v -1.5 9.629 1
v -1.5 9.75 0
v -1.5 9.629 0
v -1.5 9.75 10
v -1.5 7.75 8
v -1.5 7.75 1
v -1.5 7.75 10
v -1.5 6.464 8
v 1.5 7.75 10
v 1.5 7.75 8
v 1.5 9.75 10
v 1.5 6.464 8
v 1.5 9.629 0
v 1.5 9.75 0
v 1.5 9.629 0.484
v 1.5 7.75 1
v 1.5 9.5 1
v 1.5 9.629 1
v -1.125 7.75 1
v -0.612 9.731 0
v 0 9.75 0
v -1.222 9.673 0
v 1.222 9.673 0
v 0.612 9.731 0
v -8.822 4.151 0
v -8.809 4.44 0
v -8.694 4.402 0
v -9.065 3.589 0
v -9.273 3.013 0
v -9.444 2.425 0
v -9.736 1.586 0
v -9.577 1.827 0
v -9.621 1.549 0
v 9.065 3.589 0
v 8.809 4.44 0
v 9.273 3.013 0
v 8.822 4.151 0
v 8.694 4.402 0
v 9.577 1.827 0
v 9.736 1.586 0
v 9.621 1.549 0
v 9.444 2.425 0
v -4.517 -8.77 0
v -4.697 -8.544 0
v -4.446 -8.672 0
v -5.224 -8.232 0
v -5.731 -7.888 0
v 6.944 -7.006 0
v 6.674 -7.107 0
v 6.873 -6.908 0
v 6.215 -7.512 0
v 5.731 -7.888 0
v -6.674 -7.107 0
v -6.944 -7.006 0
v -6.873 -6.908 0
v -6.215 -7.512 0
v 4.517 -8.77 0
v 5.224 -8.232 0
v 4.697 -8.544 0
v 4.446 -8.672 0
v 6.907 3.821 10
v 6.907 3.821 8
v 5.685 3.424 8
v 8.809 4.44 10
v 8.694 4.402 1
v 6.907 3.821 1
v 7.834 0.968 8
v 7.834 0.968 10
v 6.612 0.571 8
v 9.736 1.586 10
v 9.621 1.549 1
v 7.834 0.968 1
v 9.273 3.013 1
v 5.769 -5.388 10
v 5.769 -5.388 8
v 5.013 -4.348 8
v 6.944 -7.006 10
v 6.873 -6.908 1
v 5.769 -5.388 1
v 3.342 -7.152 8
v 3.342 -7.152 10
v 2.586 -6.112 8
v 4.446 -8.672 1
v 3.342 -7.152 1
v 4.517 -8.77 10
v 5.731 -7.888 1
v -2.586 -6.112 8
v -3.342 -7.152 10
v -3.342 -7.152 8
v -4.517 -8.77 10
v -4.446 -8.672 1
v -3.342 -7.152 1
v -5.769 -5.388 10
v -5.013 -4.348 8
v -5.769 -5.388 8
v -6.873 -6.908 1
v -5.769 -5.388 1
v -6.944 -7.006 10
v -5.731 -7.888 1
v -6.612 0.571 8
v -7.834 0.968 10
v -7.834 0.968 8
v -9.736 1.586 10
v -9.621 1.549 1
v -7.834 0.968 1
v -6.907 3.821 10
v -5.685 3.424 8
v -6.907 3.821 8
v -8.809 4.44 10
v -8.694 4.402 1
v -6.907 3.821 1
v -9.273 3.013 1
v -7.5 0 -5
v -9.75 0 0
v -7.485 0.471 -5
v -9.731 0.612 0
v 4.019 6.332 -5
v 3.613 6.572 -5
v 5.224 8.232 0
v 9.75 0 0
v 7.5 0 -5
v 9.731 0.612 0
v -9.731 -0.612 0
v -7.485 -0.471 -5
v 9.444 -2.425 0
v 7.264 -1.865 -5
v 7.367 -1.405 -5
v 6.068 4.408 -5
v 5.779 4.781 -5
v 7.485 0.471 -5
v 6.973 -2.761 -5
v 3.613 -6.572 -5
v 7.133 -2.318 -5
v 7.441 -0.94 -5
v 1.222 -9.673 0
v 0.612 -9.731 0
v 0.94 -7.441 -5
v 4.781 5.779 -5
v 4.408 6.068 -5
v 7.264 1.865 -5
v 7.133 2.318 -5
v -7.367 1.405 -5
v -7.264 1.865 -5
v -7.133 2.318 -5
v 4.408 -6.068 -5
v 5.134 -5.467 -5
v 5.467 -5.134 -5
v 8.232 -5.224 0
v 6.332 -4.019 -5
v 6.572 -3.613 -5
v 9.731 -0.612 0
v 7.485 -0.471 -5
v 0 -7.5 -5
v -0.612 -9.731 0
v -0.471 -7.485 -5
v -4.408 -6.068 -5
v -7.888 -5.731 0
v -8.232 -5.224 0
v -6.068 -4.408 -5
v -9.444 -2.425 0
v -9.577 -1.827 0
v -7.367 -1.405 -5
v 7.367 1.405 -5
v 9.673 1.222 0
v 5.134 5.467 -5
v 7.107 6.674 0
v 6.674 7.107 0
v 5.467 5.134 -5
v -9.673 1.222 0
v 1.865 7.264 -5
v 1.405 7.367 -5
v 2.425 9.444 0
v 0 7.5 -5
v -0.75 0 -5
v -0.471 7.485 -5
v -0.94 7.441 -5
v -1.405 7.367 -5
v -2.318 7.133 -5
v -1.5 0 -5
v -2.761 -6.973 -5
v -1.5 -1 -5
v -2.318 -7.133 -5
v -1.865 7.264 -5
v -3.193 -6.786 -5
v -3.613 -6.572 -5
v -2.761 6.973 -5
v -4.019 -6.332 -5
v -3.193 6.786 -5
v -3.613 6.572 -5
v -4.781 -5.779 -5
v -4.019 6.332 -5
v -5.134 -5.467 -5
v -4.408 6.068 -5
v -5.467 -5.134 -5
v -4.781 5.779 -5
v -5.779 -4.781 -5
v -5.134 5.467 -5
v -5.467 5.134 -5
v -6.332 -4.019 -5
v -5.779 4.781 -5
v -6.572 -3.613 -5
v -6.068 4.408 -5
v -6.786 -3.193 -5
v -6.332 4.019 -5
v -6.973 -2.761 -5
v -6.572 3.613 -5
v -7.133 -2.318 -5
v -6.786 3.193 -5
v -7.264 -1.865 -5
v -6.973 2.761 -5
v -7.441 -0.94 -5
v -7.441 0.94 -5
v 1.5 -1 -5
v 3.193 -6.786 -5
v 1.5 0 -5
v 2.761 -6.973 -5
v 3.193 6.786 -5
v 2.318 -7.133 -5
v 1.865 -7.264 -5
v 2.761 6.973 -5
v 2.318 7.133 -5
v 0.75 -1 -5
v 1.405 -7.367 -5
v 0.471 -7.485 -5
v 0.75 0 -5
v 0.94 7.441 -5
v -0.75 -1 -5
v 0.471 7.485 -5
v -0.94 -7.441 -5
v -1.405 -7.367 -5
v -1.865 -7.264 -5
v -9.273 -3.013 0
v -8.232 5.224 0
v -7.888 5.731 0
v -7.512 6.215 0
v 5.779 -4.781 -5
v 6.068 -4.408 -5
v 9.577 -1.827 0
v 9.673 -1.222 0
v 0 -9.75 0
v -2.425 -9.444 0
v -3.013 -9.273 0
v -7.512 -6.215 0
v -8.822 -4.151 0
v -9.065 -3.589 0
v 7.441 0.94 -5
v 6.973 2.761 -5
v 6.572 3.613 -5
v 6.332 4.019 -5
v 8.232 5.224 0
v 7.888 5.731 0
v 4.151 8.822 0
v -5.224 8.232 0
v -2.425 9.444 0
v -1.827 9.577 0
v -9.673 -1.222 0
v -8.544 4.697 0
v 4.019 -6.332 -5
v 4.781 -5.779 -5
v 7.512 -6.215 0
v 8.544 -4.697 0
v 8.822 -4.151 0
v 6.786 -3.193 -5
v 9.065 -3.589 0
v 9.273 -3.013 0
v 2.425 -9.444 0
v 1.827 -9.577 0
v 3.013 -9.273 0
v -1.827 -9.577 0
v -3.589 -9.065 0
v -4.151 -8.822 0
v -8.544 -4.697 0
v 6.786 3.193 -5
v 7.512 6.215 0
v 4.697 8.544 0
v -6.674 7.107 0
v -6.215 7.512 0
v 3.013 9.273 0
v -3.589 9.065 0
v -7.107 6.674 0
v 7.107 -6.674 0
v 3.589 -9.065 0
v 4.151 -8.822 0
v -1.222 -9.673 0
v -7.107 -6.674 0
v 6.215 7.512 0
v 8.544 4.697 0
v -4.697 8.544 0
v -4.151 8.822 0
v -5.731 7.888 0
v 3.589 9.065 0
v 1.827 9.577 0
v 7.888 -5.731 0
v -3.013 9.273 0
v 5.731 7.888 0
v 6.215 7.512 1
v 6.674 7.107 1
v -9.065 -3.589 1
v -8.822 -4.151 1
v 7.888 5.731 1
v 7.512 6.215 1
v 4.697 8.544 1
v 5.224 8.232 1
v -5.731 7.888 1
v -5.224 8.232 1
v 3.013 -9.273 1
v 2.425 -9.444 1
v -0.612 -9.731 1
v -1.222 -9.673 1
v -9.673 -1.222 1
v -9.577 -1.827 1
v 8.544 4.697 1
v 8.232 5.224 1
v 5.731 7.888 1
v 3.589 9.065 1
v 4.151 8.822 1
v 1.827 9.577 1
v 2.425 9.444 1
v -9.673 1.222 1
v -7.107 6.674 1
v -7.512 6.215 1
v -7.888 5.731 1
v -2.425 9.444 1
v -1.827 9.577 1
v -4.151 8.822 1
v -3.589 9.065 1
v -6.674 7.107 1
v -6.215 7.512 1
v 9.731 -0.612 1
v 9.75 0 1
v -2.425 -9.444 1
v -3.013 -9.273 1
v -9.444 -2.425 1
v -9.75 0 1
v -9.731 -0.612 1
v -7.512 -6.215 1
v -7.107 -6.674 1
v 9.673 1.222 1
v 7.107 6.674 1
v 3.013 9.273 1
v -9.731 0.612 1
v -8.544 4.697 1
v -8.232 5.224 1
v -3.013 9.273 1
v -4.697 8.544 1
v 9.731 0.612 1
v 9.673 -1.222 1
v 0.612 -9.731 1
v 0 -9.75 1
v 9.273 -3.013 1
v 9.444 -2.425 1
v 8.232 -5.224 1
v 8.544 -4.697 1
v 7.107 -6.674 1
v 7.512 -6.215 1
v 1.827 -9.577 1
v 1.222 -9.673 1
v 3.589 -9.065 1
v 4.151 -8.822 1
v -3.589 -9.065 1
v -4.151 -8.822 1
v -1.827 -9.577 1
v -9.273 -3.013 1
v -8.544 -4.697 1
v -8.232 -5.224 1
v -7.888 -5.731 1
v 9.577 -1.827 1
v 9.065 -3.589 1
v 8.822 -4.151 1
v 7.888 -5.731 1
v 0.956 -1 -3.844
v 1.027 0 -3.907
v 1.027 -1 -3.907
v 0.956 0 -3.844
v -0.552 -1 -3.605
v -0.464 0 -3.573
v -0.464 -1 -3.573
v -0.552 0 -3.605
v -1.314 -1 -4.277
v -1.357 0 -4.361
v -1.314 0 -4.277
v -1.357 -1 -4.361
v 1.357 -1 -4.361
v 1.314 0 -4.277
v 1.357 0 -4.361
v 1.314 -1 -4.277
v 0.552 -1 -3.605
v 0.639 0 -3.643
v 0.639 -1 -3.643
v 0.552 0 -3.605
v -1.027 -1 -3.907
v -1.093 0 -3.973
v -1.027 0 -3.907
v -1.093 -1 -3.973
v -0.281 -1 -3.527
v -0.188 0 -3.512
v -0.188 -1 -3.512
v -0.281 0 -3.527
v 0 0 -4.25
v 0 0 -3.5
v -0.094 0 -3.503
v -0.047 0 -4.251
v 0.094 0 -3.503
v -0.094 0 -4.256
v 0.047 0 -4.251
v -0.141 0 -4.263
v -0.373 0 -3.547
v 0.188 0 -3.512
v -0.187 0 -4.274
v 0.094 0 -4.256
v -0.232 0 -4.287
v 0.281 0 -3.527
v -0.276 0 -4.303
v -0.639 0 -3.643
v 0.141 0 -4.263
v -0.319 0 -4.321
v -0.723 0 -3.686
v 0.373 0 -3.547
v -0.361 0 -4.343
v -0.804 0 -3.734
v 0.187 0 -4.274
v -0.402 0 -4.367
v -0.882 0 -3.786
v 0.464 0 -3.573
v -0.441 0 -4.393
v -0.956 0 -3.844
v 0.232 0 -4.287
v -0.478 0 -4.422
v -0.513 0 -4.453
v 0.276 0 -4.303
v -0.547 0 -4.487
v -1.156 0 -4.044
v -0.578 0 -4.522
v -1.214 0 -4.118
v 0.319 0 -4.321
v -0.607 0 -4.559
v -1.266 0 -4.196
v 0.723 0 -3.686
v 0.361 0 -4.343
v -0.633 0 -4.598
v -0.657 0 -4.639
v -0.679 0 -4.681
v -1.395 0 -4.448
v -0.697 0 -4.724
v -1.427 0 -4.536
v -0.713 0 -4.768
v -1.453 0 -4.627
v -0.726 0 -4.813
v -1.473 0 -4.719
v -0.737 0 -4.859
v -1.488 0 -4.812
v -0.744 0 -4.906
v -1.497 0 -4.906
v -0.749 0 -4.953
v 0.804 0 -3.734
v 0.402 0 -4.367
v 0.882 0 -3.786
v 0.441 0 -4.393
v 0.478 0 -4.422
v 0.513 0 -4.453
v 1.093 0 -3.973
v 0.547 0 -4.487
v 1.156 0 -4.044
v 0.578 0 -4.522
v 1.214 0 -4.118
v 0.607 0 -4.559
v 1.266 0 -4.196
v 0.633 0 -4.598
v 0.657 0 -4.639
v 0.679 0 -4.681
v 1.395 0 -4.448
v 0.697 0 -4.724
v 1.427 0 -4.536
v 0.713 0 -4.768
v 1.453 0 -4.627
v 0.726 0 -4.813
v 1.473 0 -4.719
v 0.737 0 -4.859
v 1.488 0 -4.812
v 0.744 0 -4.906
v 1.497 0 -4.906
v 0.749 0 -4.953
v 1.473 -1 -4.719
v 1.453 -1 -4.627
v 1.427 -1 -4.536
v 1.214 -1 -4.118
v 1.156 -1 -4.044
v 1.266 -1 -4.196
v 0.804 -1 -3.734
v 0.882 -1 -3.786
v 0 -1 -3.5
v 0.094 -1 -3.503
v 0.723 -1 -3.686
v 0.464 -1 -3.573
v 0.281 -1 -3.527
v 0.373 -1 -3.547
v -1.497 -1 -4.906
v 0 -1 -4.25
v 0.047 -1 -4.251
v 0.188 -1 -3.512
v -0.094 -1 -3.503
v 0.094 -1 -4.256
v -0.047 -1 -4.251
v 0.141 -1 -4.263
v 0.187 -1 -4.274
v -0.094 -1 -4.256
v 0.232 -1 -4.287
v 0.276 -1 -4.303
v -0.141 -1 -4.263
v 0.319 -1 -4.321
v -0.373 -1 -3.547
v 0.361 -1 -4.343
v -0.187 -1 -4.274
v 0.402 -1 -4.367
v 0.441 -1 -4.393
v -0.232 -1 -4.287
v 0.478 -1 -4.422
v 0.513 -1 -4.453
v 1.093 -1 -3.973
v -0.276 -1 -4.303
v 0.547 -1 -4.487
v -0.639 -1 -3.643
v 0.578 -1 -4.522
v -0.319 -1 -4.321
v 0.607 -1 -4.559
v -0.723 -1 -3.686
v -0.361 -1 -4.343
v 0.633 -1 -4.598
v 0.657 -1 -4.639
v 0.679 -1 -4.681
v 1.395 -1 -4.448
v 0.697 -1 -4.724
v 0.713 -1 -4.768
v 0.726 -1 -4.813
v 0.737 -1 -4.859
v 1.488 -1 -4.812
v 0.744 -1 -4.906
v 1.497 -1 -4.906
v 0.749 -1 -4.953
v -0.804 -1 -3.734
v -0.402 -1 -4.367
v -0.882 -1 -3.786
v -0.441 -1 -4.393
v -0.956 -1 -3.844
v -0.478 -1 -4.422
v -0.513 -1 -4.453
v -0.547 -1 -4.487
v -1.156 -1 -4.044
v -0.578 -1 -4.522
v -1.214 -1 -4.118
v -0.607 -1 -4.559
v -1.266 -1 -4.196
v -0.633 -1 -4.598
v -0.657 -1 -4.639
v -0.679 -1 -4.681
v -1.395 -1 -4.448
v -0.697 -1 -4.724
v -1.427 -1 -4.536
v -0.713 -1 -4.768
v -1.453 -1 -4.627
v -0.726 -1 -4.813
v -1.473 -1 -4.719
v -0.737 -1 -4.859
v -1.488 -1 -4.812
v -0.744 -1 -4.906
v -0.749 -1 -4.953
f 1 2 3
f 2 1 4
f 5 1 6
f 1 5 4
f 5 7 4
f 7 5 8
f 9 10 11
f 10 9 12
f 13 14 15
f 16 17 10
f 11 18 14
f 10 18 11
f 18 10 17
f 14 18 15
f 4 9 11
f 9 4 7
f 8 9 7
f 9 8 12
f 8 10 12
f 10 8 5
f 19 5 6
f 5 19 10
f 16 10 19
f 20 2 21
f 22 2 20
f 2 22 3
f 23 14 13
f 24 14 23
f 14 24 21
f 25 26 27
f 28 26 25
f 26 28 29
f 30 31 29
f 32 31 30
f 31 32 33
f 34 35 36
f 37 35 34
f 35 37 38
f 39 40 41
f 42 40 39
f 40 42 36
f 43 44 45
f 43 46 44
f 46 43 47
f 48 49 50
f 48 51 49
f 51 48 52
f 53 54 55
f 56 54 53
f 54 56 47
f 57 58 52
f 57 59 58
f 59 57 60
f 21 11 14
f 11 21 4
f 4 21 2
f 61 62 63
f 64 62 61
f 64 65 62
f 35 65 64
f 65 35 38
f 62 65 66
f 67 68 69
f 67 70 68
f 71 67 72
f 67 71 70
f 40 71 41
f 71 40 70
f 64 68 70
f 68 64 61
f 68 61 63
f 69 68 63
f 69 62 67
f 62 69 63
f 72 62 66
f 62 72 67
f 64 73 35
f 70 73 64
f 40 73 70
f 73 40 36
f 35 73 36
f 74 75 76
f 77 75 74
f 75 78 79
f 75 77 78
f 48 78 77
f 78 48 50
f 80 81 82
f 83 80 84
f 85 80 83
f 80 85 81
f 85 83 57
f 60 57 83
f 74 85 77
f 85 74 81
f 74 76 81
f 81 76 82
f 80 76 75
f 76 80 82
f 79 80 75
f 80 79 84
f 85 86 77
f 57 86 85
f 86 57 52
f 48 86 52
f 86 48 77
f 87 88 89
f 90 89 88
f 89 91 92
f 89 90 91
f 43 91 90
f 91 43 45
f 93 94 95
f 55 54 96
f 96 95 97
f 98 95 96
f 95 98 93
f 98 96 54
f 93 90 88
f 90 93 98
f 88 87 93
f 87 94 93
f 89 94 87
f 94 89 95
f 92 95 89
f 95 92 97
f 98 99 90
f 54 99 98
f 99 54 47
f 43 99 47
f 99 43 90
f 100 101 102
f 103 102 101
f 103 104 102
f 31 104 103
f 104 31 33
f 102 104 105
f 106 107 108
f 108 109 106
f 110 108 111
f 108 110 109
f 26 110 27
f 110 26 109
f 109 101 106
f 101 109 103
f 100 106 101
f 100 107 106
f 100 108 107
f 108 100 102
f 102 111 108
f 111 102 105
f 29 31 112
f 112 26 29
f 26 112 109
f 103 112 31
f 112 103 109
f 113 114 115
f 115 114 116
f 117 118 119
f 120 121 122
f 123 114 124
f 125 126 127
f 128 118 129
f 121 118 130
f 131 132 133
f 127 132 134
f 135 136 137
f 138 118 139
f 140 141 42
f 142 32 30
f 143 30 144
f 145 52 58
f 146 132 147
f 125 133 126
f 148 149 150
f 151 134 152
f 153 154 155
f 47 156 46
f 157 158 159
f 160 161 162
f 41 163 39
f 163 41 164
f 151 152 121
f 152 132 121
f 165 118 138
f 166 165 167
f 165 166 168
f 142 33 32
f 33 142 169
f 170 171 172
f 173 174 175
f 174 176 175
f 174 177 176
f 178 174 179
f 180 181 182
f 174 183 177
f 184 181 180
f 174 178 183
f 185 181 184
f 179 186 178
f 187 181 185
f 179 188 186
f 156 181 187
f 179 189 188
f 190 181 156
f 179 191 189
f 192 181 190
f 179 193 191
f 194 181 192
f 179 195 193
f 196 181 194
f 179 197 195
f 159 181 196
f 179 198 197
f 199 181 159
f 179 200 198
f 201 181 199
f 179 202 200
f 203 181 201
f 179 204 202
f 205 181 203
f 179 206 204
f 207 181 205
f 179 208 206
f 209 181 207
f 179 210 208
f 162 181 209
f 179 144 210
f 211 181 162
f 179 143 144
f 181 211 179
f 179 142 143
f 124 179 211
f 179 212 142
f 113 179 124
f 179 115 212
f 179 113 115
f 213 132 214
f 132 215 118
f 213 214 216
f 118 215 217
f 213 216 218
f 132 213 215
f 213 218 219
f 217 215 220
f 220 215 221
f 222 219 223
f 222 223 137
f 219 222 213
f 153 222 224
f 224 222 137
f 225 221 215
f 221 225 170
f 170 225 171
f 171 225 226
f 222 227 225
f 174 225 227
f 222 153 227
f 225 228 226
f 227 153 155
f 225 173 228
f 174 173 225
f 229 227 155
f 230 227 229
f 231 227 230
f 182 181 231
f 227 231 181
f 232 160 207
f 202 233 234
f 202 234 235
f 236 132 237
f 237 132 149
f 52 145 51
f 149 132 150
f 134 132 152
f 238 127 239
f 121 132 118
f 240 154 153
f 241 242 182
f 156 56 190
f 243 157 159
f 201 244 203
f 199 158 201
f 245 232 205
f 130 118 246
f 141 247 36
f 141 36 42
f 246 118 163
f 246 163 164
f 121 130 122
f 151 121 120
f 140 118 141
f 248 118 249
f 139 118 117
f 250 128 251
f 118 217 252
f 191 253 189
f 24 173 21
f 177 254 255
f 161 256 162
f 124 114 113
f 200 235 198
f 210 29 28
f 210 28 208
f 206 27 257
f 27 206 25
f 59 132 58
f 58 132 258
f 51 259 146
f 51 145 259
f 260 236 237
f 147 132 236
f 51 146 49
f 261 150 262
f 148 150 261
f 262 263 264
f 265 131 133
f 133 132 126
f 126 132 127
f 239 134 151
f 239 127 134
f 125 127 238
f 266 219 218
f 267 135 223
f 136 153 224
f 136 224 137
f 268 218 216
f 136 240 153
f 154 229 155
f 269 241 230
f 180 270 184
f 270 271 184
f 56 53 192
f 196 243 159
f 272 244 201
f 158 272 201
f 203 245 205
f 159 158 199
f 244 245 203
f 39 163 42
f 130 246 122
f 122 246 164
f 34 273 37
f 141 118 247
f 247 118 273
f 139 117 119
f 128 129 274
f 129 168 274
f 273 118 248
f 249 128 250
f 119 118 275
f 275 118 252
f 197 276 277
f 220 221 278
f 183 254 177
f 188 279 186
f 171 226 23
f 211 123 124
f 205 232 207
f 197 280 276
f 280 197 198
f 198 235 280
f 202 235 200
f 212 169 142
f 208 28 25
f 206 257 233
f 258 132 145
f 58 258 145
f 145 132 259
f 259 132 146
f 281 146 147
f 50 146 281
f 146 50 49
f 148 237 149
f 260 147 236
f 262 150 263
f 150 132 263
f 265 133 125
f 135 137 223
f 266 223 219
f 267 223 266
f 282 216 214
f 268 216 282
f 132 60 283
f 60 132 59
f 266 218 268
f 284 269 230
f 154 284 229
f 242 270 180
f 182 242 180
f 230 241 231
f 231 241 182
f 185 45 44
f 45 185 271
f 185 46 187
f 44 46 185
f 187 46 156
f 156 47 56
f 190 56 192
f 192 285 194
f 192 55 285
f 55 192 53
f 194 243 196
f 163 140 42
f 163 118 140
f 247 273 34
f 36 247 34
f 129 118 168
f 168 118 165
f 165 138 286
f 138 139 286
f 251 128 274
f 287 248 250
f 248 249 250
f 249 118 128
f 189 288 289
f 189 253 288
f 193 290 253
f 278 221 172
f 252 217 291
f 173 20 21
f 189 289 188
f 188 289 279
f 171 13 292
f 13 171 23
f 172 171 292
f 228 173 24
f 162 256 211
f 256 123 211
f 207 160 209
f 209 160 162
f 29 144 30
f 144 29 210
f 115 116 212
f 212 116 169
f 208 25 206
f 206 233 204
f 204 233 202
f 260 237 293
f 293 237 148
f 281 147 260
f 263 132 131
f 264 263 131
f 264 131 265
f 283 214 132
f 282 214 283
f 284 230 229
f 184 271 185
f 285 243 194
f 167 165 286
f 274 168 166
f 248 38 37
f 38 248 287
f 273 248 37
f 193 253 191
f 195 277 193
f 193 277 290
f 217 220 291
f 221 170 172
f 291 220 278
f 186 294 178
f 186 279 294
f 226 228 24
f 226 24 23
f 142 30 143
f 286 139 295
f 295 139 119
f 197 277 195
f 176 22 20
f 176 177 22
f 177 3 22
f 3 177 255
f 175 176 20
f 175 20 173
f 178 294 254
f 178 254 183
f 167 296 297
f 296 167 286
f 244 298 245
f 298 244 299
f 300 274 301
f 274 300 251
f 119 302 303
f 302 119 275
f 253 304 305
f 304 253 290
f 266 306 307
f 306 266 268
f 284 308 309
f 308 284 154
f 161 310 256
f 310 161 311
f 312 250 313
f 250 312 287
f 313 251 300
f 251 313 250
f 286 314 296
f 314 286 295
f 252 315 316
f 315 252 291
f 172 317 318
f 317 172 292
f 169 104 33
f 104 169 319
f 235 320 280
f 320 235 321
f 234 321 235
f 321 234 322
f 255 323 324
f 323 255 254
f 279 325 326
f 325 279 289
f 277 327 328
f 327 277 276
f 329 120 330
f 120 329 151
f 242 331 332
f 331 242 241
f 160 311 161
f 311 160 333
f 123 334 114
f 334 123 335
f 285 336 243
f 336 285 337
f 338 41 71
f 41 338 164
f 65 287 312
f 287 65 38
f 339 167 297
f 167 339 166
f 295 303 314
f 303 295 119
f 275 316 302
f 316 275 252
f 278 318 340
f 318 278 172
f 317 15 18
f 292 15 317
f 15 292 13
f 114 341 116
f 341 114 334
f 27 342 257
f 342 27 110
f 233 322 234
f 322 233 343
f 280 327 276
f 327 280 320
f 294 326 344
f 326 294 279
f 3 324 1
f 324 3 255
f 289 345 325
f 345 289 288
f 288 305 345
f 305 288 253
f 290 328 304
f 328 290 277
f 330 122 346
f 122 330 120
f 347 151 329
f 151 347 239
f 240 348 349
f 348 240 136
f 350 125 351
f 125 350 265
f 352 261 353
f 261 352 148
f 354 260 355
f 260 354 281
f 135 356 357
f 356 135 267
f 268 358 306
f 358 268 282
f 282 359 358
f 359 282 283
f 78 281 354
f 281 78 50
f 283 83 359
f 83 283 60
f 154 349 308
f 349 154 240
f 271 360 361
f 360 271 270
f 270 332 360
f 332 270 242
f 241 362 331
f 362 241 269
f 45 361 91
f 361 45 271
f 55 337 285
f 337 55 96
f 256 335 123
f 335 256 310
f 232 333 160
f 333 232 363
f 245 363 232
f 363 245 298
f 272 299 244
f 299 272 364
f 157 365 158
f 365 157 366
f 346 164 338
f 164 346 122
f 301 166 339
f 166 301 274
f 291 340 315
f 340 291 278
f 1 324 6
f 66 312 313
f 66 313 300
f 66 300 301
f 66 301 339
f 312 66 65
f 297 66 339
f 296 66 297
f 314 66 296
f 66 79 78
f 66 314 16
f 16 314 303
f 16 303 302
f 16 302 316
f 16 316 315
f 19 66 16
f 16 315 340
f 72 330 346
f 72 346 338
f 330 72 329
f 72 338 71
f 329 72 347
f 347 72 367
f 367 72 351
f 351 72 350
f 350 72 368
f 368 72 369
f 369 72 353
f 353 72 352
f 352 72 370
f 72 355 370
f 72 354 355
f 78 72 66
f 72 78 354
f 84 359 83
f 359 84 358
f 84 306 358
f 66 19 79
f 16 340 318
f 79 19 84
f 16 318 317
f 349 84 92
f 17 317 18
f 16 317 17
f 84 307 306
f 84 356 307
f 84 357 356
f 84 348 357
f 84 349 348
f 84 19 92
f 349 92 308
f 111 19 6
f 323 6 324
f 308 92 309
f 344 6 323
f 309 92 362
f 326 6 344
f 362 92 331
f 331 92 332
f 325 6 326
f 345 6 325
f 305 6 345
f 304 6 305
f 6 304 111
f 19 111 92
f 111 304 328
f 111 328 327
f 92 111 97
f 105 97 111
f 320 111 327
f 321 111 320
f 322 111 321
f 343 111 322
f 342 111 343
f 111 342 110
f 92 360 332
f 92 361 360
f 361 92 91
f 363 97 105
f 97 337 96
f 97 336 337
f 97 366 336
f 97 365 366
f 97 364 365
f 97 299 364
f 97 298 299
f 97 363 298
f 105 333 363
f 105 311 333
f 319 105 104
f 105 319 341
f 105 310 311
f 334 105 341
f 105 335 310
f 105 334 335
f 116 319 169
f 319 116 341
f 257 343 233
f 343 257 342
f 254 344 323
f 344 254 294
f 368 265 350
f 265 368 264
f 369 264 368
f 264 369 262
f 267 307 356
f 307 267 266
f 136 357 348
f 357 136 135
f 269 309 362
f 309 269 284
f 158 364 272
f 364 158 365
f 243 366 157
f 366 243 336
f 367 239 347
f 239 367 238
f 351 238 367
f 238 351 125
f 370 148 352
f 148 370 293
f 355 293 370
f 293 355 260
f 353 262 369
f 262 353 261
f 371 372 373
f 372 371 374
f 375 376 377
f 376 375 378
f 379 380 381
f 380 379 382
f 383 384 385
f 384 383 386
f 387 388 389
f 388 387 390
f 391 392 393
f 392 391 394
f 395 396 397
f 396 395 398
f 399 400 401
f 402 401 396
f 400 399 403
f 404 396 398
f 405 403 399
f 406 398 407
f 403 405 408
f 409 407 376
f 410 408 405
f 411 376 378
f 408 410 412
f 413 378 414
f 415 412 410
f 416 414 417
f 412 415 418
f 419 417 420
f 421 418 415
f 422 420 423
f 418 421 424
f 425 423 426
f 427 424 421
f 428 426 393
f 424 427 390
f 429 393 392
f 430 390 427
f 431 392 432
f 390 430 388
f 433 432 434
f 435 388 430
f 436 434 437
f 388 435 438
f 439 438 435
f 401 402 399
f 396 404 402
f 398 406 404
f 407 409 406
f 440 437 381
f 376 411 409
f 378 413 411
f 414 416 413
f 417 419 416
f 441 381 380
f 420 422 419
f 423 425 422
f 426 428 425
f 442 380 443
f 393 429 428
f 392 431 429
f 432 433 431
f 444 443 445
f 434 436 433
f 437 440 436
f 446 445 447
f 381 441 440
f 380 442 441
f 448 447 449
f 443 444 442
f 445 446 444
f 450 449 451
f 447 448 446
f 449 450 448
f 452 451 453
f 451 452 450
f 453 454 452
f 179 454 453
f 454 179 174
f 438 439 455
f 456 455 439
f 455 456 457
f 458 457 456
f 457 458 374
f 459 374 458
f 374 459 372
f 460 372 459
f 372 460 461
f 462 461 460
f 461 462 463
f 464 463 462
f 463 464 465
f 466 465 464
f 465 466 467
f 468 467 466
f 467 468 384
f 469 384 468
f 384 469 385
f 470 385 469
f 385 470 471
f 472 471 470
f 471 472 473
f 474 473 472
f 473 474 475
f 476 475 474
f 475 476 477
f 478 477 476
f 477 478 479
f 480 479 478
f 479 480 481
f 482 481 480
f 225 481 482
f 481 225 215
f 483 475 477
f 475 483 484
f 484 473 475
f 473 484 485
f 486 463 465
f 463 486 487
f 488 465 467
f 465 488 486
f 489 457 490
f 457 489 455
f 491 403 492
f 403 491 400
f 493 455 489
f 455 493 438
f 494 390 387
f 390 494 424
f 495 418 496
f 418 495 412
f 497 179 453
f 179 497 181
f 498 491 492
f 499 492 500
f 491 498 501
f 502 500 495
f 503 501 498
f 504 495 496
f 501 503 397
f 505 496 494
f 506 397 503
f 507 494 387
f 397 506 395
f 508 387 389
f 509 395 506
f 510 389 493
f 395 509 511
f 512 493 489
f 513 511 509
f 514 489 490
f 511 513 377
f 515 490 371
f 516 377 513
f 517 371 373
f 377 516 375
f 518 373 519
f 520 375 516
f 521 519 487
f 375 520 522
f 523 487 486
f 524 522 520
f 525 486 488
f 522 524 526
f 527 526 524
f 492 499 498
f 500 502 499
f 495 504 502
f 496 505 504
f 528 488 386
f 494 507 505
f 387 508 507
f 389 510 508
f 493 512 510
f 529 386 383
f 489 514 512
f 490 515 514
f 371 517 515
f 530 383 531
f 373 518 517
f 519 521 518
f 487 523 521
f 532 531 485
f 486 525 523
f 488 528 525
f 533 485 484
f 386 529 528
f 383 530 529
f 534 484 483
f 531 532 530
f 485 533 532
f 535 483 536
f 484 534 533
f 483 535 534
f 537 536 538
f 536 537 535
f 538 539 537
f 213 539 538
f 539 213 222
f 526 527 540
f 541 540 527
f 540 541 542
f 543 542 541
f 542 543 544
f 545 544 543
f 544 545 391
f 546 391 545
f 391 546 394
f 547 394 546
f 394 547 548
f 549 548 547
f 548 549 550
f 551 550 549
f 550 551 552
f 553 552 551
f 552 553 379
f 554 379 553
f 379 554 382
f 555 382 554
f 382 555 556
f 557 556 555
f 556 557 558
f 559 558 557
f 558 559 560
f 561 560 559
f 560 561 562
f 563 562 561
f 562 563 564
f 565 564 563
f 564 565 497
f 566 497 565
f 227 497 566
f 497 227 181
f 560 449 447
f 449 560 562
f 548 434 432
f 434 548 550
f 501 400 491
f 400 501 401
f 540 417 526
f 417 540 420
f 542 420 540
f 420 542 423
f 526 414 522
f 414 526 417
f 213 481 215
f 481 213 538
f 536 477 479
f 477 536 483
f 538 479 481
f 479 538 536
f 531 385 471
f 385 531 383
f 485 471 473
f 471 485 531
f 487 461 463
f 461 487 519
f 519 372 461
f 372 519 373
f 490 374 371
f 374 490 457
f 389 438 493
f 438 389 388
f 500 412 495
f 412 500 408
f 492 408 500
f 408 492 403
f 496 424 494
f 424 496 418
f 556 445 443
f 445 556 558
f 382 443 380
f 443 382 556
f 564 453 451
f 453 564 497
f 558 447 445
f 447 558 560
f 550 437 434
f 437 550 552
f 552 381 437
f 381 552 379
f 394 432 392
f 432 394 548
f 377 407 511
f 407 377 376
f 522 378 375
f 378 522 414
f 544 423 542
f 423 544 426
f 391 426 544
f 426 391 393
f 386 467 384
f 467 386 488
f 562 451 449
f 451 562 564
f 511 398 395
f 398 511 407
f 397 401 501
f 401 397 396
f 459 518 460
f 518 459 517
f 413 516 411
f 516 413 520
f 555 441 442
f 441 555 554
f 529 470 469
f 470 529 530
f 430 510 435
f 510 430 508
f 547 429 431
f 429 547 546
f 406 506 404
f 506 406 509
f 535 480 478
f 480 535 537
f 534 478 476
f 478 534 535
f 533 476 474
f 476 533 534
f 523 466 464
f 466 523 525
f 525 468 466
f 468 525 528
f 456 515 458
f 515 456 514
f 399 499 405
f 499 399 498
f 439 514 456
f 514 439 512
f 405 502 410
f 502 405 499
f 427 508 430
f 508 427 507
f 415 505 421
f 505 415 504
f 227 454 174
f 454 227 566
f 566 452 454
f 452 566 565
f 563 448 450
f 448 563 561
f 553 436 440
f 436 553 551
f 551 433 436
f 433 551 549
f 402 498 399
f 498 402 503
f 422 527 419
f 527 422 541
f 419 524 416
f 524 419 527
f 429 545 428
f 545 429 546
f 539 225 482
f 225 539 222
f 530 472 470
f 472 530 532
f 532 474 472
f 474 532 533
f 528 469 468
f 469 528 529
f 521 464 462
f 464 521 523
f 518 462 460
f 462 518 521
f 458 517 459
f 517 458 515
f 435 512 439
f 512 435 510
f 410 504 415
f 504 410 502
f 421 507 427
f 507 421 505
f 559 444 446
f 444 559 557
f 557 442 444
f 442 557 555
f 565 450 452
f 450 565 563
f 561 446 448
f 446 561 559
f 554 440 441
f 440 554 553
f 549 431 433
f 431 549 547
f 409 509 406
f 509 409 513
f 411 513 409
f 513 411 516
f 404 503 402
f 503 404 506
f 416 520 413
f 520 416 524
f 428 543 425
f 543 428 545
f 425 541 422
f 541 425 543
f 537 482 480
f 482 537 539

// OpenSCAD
// file: basic_latch.scad
module latch( base_width=5, latch_width=15, base_height=10, latch_height=5, latch_angle=10)
{
    //here we draw 2d latch using parameters
    dots = [
        // first dot is zero
        [0,0],
        // then we go forward on x axis 
        // for the base width
        [base_width,0],
        // Up to the upper corner
        // from opposite corner of latch
        [base_width, base_height+latch_height],
        
        //to the angle of the latch
        [0, base_height+latch_height],
    
        //and to to the latch corner dot
        //simplest ever trigonomtry is used here
        //width of the latch itself is it's
        //height times sin(it's angle in degrees)
        [ -latch_height*sin(latch_angle),base_height ],
        // corner
        [ 0,base_height]
    ];
    //extrude it to desired latch width
    translate([-latch_width/2,0,0])
    rotate([90,0,90])
    linear_extrude(latch_width)
        polygon(dots);
}

latch();
// main file
use <basic_latch.scad>
$fn=100;
module circular_latches(radius=50, count=5, arc=360,  base_width=5, latch_width=15, base_height=10, latch_height=5, latch_angle=10 , latch_rotate=[0,0,0]) {
   step = arc/count;
   union()
   for(i = [0:step:arc]) {
       x=sin(i)*radius; y=cos(i)*radius;
       translate([x,y,0])
         rotate([0,0,-i])
         rotate(latch_rotate)
         latch(base_width,latch_width,base_height,latch_height,latch_angle);
   }
}

difference() {
    union(){
        circular_latches(radius=15.5/2, base_width=2, latch_width=3, base_height=8, latch_height=2, latch_angle=40);
        rotate([0,180,0])
        cylinder(d1=15.5+4,d2 =15, h=5);
        cylinder(d=15.5+4,h=1);
    }
    translate([0,0,-5])
    rotate([90,0,0])

    difference() {    

        cylinder(d=3,h=1);
        translate([0,0,-0.5])
        cylinder(d=1.5,h=2);
    }
}
